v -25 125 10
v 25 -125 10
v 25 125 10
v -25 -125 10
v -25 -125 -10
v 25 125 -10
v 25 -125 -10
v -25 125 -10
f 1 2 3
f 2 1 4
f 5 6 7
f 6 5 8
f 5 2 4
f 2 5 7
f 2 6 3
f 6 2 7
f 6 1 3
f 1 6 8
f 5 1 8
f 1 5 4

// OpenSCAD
// To create a test stl file for largetooltrace.scad

cube([50,250,20],center=true);
